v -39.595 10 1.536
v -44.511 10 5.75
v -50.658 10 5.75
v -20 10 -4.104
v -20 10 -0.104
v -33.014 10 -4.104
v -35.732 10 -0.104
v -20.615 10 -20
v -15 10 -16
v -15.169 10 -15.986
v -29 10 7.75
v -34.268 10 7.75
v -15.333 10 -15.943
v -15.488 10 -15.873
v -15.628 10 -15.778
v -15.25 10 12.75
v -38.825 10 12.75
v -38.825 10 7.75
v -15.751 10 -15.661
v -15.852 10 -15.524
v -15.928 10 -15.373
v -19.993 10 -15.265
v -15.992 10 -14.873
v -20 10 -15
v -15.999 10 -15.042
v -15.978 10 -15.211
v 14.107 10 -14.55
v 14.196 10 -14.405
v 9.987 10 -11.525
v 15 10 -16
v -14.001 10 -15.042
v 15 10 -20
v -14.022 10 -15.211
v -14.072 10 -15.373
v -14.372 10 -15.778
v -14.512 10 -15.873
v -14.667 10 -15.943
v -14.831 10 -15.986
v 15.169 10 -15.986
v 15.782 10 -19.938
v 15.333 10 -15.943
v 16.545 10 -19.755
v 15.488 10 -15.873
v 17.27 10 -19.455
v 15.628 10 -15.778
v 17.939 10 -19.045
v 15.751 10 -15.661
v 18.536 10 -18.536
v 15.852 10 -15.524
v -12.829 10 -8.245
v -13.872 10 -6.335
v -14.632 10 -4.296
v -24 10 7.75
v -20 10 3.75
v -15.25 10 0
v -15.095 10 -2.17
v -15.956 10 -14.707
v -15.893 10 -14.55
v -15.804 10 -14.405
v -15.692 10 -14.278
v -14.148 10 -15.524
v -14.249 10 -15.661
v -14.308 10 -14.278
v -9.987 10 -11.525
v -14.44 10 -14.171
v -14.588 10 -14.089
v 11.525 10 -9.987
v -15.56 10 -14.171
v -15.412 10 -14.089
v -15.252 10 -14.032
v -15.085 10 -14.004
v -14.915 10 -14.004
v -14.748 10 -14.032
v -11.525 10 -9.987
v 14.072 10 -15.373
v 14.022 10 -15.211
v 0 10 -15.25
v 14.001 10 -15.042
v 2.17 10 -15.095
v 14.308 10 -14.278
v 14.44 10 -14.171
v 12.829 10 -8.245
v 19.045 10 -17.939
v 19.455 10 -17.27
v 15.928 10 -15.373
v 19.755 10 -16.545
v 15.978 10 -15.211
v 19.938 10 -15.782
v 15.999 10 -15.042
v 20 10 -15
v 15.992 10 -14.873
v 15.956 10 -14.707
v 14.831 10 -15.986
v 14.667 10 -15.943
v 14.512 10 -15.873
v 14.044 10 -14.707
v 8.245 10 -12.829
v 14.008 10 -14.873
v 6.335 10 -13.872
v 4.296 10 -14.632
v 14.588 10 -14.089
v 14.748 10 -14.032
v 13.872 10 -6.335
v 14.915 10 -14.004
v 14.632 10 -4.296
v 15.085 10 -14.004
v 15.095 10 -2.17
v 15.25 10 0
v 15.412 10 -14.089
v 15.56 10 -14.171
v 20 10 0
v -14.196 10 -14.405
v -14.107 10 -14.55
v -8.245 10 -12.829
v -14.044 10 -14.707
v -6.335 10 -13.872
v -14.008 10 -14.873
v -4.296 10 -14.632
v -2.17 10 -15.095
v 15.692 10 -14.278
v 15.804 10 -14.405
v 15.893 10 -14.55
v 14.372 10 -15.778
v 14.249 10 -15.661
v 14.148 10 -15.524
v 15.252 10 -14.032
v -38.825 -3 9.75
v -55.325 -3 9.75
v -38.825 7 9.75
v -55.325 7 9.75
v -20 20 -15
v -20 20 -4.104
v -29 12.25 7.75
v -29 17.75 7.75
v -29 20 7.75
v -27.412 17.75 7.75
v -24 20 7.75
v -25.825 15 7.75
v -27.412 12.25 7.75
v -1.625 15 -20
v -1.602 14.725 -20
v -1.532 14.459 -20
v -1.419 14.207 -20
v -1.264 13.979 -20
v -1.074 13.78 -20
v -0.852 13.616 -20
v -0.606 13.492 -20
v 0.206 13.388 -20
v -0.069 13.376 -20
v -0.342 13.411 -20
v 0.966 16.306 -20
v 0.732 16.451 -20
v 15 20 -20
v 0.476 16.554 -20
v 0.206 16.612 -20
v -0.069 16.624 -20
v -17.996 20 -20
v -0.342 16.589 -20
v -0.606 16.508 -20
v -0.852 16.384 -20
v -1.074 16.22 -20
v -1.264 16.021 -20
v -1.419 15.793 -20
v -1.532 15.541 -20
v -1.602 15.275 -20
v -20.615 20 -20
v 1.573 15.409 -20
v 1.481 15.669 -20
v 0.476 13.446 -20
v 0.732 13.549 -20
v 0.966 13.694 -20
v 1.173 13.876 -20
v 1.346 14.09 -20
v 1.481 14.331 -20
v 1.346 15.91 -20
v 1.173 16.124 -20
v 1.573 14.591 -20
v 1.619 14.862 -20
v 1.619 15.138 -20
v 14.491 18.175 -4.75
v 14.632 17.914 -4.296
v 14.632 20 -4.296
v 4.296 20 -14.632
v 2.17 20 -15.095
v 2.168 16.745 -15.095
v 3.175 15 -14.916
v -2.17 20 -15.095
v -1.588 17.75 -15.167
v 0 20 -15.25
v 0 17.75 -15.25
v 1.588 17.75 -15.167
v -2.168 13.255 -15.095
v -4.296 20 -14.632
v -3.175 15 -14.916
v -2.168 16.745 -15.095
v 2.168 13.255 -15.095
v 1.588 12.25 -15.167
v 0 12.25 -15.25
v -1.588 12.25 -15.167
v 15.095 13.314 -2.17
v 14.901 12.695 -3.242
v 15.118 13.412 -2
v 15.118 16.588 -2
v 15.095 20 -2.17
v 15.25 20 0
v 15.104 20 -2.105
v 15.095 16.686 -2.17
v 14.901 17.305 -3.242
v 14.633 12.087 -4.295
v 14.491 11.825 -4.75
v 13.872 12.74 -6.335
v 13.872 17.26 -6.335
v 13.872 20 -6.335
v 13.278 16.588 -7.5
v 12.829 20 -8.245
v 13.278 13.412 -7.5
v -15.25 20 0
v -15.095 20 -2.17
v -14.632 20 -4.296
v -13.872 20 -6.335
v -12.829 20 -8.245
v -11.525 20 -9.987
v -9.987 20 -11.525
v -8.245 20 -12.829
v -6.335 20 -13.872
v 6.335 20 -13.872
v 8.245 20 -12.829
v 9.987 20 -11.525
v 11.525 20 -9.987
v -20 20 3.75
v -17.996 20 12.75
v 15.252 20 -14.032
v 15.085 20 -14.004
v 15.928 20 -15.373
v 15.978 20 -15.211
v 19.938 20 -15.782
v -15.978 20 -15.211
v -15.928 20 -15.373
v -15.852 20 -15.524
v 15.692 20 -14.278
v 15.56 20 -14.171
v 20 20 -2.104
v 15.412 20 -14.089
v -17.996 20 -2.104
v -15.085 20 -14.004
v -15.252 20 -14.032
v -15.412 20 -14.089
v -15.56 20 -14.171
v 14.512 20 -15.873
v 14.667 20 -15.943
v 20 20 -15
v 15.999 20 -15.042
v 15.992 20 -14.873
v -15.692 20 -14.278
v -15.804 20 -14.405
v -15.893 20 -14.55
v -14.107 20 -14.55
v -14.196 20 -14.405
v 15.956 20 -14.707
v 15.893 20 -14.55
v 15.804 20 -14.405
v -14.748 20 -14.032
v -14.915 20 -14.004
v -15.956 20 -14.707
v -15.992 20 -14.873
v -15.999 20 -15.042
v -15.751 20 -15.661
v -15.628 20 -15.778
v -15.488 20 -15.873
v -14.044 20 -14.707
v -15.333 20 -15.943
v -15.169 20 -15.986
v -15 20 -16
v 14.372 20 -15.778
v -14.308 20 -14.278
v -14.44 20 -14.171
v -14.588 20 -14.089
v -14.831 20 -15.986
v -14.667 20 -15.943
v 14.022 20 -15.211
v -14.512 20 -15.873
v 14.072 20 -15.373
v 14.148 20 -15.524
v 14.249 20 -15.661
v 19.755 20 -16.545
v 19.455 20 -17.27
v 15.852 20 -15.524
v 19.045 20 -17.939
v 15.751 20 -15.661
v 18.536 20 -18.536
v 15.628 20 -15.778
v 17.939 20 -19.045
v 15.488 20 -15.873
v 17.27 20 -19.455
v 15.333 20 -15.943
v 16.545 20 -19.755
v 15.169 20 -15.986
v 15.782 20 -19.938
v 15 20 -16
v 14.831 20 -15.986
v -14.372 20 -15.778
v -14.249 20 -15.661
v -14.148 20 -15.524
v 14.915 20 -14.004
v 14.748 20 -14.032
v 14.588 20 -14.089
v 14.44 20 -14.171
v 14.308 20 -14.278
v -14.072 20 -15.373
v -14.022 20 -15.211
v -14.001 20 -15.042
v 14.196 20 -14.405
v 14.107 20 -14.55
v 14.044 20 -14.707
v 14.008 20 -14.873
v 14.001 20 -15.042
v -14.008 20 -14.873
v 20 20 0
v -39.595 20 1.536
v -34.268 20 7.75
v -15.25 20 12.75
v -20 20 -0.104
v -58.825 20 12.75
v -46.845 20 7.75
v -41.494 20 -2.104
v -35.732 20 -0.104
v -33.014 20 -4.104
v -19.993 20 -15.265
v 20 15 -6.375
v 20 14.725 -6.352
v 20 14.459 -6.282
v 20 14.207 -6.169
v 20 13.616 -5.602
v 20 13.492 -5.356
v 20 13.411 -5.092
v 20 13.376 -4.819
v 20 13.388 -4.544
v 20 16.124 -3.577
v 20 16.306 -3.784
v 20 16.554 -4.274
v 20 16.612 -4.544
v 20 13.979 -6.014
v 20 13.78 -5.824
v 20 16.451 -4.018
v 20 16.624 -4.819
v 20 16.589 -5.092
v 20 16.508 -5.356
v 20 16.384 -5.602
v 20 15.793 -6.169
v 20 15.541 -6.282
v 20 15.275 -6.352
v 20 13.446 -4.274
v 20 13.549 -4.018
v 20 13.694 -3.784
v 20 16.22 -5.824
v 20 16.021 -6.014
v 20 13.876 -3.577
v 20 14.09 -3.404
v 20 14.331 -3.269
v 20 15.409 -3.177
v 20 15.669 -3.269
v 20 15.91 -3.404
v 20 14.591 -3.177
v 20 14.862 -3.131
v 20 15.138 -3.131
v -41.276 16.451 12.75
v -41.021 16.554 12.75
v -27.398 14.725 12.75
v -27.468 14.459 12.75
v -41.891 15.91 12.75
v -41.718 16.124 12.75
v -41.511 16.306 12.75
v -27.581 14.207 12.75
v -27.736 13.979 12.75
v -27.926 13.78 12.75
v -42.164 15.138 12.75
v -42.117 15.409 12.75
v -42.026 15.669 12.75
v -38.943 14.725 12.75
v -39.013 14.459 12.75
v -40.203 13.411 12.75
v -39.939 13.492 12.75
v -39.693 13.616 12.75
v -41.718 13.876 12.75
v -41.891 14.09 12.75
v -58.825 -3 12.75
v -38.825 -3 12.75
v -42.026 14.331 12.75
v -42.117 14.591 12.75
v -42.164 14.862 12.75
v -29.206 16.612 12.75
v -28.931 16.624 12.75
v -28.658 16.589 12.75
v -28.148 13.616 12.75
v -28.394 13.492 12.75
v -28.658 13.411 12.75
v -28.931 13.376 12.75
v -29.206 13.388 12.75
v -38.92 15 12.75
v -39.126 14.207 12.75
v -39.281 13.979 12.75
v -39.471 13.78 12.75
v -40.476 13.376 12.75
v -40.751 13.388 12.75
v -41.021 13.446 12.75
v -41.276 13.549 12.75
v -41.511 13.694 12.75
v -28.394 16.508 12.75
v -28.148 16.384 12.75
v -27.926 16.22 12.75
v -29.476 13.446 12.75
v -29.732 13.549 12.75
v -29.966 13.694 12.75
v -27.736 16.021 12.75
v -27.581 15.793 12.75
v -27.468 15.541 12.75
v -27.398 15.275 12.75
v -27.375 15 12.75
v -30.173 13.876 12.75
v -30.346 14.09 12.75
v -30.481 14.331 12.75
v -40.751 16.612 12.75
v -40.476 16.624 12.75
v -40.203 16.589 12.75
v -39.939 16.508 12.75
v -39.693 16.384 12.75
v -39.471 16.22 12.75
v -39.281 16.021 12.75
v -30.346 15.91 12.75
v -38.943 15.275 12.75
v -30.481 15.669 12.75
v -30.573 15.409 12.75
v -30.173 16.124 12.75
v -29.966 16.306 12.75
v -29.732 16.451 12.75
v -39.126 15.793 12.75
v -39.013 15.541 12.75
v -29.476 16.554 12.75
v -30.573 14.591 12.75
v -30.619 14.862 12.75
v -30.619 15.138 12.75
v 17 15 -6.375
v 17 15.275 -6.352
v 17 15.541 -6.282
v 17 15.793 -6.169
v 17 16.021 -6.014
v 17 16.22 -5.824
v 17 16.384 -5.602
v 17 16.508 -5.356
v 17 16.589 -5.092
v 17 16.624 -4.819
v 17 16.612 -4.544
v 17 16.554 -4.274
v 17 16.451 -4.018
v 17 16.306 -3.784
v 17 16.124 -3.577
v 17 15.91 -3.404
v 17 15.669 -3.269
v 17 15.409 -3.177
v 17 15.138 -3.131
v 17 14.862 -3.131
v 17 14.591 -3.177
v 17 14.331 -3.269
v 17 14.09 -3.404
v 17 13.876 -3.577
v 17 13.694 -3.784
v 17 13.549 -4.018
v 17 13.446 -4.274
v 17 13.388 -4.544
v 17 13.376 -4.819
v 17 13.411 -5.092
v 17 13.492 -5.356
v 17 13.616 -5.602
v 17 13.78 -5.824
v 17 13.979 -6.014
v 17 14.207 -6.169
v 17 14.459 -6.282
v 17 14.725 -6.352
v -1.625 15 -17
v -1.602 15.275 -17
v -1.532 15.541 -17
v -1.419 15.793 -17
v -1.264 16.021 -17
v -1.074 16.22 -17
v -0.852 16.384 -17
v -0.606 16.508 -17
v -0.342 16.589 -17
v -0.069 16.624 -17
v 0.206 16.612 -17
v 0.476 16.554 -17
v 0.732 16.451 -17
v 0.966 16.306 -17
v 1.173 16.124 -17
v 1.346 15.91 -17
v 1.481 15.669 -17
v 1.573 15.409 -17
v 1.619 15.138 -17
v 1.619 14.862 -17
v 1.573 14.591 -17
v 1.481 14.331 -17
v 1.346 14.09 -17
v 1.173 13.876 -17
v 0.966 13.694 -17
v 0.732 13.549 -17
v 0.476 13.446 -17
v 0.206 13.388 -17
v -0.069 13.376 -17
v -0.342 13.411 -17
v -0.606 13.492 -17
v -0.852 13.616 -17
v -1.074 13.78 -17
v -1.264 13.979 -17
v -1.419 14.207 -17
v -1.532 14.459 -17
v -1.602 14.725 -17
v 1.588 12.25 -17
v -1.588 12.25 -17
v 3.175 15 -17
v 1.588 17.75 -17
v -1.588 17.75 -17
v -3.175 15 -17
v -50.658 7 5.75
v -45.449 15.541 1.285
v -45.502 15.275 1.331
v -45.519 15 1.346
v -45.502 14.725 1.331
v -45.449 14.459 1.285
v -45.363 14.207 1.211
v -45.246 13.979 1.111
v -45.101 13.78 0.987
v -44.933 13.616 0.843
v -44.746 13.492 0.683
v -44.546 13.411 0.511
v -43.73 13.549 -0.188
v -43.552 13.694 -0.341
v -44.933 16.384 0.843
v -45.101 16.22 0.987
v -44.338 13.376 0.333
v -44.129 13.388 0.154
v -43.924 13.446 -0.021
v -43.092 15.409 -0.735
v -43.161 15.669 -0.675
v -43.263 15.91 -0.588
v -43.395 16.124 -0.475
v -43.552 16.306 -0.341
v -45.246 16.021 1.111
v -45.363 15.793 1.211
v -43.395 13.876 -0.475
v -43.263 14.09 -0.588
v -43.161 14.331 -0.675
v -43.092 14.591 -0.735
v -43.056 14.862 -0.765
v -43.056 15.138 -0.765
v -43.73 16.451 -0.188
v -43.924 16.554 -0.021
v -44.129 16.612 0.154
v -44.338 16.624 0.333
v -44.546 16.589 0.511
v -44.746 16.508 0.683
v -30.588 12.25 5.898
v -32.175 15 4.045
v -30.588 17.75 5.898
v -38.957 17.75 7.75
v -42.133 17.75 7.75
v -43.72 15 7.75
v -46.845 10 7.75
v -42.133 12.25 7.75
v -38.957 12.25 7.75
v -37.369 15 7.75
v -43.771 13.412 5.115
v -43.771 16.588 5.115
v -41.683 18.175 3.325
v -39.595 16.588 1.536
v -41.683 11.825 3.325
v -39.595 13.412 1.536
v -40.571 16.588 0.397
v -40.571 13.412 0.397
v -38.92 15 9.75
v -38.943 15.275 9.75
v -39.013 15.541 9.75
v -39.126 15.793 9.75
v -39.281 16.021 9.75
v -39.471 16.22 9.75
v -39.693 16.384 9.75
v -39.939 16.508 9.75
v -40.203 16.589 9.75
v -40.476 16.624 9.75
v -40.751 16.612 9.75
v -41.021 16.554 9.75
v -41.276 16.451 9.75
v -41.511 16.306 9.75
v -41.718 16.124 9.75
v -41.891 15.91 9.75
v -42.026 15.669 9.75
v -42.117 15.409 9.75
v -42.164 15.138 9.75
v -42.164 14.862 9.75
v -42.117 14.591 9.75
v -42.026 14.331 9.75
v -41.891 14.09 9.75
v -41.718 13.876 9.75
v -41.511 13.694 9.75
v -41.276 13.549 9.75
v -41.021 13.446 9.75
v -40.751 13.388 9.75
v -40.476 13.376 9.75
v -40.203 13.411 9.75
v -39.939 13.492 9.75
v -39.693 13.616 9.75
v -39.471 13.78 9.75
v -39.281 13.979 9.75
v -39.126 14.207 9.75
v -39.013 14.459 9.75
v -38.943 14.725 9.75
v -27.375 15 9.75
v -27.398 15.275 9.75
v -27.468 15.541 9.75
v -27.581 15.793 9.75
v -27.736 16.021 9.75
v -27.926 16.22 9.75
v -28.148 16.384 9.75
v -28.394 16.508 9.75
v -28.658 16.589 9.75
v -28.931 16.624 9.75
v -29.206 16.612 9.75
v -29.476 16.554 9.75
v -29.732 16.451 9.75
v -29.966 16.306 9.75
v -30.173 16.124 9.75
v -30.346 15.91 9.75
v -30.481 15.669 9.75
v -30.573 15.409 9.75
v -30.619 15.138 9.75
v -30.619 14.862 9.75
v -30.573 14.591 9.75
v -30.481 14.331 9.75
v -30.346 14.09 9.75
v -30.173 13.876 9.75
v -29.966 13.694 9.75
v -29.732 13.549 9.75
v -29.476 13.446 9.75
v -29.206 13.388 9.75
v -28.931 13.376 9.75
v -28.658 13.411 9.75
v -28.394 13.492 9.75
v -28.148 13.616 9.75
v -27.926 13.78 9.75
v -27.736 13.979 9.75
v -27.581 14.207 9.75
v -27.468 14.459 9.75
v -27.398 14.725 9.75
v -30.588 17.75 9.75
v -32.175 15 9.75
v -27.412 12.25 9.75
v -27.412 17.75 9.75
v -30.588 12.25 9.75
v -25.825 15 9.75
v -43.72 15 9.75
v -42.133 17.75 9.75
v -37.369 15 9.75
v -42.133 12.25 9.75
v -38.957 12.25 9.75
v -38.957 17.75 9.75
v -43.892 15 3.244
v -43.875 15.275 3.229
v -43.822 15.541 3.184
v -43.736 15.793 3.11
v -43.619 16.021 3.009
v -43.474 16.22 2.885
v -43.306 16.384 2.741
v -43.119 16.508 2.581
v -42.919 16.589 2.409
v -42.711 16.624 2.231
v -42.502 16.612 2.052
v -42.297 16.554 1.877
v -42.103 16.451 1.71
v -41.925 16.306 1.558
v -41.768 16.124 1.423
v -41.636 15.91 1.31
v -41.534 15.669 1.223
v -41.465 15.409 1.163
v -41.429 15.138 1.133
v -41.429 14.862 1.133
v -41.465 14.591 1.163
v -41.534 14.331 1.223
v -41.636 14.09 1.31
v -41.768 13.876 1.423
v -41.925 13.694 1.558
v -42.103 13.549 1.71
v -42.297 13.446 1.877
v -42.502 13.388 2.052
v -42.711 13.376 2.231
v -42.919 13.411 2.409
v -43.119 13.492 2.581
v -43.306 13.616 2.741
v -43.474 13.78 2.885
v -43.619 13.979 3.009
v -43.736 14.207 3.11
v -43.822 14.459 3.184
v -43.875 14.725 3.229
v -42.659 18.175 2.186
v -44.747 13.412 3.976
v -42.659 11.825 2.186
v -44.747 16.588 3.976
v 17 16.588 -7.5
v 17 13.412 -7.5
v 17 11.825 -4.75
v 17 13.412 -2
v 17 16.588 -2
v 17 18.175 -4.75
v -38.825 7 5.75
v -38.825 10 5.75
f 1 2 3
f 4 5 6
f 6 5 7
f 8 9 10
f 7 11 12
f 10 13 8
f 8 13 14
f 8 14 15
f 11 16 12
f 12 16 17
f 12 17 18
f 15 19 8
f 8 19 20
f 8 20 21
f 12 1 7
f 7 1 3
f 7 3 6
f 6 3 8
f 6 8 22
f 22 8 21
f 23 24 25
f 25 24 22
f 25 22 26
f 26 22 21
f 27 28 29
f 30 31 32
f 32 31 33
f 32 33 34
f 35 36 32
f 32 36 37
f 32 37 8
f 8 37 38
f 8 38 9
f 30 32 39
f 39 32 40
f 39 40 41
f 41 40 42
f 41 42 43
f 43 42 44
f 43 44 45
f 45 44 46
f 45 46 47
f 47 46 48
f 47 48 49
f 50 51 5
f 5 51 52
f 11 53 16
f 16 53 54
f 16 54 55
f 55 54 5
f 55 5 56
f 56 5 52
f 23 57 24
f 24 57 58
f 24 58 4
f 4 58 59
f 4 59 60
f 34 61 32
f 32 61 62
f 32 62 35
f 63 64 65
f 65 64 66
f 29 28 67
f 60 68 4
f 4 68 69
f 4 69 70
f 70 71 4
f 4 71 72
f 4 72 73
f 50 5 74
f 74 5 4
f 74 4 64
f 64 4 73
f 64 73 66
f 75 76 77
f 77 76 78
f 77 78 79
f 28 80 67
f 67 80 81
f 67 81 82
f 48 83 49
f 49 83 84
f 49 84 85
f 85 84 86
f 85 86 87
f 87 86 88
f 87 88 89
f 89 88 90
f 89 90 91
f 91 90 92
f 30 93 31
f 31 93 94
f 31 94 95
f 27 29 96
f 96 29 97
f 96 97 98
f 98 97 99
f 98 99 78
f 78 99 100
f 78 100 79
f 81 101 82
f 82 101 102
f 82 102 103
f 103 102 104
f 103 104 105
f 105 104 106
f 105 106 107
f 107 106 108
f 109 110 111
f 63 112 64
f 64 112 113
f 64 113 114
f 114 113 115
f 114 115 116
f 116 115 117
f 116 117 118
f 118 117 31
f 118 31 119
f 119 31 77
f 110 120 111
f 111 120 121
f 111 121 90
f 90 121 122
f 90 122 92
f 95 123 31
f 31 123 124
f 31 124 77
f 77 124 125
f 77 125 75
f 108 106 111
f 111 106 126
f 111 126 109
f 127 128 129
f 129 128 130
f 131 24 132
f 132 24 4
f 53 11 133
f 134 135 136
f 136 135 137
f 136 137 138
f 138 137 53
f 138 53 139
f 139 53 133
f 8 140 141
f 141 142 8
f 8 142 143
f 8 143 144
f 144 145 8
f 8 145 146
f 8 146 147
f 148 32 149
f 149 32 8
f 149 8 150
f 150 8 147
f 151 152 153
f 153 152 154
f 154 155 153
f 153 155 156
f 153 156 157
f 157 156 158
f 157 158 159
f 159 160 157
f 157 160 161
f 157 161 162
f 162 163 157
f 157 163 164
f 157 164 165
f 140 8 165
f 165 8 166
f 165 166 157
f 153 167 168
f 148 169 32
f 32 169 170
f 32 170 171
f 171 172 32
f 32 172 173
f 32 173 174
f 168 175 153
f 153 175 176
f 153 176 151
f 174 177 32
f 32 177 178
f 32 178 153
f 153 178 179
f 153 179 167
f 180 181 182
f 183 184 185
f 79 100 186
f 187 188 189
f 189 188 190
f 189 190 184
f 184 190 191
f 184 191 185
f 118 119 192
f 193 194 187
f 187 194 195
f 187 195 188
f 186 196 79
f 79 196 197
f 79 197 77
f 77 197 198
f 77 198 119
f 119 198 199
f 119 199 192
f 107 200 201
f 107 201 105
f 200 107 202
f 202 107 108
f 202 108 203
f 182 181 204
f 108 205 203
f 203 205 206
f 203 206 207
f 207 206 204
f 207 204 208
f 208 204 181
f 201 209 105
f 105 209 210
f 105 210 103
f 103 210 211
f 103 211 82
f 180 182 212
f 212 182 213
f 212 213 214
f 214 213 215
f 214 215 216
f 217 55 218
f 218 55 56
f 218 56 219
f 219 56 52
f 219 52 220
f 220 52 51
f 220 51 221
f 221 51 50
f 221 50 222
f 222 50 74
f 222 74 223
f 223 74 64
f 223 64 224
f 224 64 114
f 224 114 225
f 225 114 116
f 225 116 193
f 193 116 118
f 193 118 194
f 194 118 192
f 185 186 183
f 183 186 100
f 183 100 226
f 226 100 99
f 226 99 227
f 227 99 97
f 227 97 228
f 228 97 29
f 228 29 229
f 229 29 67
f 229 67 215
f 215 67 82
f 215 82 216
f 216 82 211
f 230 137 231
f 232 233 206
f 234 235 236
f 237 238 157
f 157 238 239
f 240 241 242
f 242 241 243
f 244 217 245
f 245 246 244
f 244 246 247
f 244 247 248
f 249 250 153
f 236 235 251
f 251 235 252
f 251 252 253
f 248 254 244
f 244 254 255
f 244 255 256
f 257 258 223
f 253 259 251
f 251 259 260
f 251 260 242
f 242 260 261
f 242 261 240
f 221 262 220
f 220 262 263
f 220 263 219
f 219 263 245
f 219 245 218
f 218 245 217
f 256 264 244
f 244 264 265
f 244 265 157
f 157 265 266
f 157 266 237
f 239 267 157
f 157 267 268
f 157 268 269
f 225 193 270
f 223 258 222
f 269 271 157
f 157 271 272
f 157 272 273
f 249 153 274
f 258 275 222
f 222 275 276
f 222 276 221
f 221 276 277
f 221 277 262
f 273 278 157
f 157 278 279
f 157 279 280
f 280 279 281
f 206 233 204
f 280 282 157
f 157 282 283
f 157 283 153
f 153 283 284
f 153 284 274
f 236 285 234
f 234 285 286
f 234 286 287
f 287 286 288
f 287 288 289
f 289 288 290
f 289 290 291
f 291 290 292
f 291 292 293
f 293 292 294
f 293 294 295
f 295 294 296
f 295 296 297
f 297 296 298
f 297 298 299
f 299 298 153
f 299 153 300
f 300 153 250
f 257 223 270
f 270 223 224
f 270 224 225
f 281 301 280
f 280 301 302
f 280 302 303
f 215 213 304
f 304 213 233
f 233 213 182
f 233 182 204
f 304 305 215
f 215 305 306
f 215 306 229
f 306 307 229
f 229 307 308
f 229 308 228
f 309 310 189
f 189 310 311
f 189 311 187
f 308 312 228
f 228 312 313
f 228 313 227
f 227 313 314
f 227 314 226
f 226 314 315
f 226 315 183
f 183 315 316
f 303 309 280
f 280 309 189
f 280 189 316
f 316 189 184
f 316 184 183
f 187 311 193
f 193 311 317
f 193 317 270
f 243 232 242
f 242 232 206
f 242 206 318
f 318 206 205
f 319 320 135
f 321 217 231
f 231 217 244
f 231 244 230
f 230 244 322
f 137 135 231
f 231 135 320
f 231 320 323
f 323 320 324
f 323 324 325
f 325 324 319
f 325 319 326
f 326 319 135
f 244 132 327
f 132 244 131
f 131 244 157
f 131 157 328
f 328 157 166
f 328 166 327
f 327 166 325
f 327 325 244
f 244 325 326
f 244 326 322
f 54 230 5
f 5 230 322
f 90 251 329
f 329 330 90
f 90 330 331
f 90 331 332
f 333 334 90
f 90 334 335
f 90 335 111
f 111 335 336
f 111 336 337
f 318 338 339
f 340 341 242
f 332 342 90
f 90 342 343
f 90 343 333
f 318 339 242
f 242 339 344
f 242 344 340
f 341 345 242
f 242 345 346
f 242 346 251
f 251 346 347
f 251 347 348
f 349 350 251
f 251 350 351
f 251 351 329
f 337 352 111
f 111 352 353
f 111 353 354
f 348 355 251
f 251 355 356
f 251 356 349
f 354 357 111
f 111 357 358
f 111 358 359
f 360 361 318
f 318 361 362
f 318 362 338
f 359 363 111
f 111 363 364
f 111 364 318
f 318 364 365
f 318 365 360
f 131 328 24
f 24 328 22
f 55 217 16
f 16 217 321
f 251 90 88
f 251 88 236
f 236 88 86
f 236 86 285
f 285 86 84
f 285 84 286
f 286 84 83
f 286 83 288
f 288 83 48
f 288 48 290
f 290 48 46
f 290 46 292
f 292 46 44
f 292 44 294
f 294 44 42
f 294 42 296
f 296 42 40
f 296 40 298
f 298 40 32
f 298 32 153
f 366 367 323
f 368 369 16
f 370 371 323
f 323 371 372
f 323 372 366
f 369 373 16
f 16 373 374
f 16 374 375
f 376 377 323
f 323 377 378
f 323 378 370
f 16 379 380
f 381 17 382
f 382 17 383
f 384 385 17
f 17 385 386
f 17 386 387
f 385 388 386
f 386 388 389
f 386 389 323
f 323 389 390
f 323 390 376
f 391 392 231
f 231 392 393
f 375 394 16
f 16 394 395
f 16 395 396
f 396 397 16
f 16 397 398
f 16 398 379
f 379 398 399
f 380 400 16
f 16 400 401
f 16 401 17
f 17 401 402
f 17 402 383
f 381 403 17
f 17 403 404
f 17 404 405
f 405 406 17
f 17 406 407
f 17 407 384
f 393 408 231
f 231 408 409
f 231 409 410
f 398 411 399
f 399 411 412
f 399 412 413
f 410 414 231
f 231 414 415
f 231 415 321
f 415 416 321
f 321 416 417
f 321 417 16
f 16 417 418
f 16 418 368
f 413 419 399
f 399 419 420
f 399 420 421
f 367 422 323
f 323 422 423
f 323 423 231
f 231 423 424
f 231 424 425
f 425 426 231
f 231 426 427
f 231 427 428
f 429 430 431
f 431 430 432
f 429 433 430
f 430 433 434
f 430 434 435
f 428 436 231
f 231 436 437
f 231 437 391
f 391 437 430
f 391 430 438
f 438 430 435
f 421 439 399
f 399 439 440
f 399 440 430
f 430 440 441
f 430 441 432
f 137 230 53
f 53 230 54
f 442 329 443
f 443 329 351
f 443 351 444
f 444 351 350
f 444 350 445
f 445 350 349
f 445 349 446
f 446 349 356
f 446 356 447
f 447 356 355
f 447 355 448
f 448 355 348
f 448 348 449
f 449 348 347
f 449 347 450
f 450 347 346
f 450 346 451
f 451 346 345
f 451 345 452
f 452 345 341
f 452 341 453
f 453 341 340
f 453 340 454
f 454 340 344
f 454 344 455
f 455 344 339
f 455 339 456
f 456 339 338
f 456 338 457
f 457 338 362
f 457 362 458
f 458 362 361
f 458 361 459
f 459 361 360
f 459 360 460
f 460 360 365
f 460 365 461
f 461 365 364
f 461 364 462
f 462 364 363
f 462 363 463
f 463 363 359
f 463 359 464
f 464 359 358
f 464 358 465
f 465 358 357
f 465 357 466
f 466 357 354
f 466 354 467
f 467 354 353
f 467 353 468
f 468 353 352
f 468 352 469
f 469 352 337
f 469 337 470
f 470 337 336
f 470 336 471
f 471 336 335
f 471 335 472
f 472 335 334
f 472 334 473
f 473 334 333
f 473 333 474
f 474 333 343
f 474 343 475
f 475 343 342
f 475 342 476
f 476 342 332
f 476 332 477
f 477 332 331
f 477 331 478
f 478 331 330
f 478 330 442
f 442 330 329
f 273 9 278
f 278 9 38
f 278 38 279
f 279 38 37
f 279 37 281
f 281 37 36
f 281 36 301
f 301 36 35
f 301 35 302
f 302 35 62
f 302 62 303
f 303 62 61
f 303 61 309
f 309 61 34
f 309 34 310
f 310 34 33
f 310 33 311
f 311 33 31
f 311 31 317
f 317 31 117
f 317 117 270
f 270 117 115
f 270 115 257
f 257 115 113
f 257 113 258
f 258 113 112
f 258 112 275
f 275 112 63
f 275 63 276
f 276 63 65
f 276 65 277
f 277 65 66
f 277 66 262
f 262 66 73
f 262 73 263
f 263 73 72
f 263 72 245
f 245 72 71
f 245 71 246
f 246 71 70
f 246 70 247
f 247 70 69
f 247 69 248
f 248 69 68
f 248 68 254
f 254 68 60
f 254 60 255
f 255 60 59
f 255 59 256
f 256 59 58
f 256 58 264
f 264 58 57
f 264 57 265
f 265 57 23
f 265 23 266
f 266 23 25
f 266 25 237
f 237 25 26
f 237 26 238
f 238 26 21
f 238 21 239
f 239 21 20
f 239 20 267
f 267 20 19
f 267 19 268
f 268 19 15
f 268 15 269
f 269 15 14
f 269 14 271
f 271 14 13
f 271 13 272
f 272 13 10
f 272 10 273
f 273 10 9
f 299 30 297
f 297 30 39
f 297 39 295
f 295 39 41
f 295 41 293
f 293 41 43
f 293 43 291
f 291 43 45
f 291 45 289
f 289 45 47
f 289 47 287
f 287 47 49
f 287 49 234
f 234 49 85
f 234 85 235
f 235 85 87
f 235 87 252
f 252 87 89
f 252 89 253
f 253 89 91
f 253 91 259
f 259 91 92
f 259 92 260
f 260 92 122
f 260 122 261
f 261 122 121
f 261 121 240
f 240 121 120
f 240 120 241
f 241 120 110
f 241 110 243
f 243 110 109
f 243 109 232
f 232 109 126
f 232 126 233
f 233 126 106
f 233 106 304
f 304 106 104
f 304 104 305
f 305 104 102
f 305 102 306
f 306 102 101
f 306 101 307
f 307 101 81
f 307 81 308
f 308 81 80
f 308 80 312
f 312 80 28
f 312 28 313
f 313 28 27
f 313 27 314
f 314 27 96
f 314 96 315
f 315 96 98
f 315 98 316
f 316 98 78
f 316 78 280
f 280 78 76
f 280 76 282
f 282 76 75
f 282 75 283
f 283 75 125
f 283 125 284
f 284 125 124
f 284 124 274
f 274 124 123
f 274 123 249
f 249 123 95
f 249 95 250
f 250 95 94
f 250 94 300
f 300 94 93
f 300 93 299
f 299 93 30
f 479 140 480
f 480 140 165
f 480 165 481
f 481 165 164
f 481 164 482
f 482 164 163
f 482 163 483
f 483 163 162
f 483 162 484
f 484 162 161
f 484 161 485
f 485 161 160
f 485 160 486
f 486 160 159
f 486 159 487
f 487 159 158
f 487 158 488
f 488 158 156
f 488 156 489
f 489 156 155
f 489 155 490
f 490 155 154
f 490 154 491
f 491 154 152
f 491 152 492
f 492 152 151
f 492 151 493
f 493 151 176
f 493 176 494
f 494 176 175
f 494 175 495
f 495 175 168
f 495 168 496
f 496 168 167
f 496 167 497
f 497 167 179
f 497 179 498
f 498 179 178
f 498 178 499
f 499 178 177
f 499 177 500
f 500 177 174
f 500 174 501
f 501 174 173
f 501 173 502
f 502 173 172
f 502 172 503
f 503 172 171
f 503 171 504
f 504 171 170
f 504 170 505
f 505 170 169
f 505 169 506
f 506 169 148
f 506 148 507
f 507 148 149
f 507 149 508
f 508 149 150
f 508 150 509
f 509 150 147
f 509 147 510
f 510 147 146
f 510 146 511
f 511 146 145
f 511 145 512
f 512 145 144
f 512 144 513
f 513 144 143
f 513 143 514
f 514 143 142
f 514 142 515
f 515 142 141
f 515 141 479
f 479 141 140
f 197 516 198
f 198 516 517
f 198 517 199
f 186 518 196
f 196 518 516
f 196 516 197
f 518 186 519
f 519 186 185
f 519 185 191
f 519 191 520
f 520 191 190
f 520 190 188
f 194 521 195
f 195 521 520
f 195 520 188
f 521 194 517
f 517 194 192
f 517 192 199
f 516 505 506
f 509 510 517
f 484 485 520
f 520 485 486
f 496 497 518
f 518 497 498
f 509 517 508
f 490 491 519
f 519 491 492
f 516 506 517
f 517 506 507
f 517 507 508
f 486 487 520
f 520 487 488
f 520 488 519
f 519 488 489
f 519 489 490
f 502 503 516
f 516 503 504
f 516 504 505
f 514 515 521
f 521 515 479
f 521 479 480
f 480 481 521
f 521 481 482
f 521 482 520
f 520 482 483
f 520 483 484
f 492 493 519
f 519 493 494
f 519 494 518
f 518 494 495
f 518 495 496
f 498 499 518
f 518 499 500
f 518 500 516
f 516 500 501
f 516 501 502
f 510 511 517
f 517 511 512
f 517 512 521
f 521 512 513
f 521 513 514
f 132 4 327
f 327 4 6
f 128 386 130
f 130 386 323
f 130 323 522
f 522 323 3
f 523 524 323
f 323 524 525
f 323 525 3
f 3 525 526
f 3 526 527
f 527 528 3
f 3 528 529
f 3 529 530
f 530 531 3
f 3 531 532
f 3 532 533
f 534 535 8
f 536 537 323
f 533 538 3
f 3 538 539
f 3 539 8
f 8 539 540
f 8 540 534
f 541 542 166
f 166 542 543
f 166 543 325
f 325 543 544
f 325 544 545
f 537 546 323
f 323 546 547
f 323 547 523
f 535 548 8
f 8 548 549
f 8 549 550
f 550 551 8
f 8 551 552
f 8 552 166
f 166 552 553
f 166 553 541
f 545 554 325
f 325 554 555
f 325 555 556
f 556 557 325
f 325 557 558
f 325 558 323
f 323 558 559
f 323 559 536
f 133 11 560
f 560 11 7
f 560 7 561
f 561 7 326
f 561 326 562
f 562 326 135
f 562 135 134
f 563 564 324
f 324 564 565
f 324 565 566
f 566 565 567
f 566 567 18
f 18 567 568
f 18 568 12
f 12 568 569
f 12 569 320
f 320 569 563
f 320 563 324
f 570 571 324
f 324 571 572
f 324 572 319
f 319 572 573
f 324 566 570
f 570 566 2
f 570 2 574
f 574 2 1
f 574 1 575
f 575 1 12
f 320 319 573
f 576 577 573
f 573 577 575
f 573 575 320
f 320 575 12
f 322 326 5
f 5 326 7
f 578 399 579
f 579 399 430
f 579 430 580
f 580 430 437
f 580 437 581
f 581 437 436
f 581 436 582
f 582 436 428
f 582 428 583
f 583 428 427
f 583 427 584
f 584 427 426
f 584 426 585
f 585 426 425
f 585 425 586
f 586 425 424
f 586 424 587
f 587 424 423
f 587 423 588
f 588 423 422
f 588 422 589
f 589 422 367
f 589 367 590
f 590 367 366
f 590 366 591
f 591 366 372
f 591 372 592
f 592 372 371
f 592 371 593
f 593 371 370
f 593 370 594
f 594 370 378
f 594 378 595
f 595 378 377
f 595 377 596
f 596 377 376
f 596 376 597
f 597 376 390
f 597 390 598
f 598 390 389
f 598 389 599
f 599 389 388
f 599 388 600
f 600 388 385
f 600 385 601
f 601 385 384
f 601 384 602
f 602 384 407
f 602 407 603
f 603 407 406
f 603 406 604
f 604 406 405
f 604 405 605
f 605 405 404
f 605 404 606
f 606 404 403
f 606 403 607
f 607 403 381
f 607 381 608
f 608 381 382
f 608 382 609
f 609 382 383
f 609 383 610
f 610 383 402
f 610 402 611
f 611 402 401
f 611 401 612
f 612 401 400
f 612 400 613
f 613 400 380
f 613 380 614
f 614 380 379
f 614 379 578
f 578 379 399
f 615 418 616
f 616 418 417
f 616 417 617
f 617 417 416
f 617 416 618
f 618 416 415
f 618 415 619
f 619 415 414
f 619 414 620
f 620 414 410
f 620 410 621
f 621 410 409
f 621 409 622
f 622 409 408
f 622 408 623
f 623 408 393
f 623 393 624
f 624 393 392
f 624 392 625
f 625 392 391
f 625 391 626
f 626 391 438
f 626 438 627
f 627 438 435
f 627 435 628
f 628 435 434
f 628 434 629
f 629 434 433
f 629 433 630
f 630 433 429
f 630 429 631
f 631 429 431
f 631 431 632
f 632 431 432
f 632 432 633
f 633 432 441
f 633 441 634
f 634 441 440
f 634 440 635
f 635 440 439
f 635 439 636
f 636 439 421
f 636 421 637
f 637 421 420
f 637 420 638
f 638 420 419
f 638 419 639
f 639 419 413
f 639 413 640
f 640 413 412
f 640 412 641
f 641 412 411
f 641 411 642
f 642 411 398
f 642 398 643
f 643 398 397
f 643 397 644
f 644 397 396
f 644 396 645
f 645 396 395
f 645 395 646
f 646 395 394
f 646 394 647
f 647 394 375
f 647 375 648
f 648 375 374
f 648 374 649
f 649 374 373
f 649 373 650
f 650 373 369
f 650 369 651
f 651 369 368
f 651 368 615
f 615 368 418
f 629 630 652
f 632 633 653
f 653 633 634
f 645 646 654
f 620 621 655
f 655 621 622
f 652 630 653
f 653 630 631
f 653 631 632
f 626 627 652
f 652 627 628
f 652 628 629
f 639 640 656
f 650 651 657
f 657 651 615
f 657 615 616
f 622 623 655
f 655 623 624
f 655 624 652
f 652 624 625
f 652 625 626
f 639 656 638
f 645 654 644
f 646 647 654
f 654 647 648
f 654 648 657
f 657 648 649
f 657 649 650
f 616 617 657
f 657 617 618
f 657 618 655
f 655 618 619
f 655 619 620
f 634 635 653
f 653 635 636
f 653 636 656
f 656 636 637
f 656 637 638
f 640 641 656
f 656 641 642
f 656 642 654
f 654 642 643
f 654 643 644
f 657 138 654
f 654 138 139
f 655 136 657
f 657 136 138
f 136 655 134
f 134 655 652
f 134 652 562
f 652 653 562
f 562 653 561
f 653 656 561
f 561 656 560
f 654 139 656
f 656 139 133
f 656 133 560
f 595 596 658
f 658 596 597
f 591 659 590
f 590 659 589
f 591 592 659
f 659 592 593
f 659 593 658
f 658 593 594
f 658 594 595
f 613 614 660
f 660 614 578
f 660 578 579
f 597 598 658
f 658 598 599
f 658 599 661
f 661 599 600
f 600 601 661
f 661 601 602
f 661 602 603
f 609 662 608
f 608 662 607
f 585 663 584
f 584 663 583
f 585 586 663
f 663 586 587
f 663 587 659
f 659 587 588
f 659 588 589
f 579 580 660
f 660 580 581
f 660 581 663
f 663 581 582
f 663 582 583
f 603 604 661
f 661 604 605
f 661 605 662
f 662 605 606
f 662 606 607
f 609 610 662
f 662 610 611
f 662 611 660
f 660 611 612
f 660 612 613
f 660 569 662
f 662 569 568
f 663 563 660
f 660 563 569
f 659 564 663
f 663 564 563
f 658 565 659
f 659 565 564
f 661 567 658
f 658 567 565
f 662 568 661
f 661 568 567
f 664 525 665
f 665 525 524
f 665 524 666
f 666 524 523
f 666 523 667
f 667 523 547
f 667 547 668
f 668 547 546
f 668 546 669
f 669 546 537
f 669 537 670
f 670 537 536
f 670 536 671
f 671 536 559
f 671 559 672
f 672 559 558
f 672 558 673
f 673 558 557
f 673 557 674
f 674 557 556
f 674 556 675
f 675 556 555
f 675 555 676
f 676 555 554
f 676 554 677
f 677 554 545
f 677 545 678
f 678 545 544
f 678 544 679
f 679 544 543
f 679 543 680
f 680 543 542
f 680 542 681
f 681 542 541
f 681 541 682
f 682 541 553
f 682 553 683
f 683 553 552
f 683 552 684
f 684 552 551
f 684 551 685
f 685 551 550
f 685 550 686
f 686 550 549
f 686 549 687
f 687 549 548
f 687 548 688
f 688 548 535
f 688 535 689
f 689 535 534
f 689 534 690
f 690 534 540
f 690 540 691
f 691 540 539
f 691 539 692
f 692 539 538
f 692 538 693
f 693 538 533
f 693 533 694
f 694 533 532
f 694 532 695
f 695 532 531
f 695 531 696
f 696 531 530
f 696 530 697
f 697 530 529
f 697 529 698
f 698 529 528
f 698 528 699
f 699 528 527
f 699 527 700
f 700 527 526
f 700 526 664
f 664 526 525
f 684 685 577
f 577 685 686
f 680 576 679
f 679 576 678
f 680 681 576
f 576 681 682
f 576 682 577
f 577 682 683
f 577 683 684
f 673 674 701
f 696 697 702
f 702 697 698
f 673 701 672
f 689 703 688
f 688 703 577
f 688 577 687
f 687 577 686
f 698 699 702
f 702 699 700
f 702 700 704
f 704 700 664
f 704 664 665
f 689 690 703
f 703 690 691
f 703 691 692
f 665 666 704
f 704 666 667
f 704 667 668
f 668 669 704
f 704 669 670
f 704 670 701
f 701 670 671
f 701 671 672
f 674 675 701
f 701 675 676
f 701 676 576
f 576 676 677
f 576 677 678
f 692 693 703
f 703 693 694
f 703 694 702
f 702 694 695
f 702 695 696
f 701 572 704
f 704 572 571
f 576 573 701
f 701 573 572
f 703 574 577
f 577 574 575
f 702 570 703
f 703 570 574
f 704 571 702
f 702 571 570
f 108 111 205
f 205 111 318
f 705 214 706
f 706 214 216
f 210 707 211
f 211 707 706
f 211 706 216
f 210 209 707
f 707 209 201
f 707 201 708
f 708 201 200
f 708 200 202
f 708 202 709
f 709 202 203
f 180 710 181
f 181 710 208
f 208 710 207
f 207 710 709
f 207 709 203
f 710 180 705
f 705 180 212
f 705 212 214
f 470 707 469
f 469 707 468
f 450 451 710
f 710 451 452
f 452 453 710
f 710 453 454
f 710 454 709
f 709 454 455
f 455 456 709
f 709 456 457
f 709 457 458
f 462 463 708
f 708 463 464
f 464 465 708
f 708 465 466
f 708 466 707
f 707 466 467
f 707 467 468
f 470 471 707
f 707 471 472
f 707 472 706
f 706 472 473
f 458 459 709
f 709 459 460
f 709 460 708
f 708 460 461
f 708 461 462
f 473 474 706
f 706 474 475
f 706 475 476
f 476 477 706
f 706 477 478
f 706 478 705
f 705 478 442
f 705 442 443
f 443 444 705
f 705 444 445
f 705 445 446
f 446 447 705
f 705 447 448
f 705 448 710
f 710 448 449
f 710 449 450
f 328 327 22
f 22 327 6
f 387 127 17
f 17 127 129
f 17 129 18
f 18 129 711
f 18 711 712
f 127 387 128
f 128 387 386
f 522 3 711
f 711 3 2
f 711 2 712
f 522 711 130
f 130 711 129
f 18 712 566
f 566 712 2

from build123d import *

# Parameters (mm, degrees)
CROQUIS1_R                              = 15.25
CROQUIS1_R_2                            = 2.125
SOPORTE_CAJA_REDUCTORA_DEPTH            = 20
CROQUIS3_R                              = 2.125
CORTAR_EXTRUIR1_DEPTH                   = 51.423828692
REDONDEO1_R                             = 5
BOSS_EXTRUDE1_DEPTH                     = 20
CUT_EXTRUDE1_REACH                      = 55.852
SKETCH2_R                               = 1.625
CUT_EXTRUDE2_DEPTH                      = 2
SKETCH4_R                               = 1.625
CUT_EXTRUDE3_DEPTH                      = 63.291652731
CUT_EXTRUDE4_START                      = -4.5
CUT_EXTRUDE4_DEPTH                      = 2
CROQUIS6_W                              = 4.75
CROQUIS6_H                              = 4.75
CORTAR_EXTRUIR17_DEPTH                  = 42.231056256
CROQUIS7_W                              = 60
CROQUIS7_H                              = 20
CORTAR_EXTRUIR18_DEPTH                  = 51.423828692
SALIENTE_EXTRUIR2_DEPTH                 = 49
SOPORTE_START                           = -15
SOPORTE_MOTOR_DEPTH                     = 15
CROQUIS12_R                             = 2.125
AGUJEROS_DE_SUJECION_A_BASE_DEPTH       = 84.087679592
TUERCA_START                            = -4
TUERCA_AGUJERO_DE_SUJECION_A_BASE_DEPTH = 10
SALIENTE_EXTRUIR4_DEPTH                 = 15
CORTAR_EXTRUIR19_DEPTH                  = 25
CROQUIS14_W                             = 50
CROQUIS14_H                             = 118
CORTAR_EXTRUIR22_DEPTH                  = 146.556045907
CROQUIS15_W                             = 10
CROQUIS15_H                             = 7
CORTAR_EXTRUIR23_DEPTH                  = 42.231056256
CORTAR_EXTRUIR24_DEPTH                  = 42.231056256
CROQUIS18_W                             = 40
CROQUIS18_H                             = 10
CORTAR_EXTRUIR25_DEPTH                  = 44.27311521
SALIENTE_EXTRUIR5_DEPTH                 = 10
CROQUIS20_R                             = 1
CORTAR_EXTRUIR26_DEPTH                  = 49.229270158
CORTAR_EXTRUIR27_REACH                  = 62.959
CORTAR_EXTRUIR27_END_RADIUS             = 15.25
CROQUIS21_R                             = 1.625
CROQUIS22_R                             = 2.125
CROQUIS22_R_2                           = 1
SALIENTE_EXTRUIR6_DEPTH                 = 10
CROQUIS23_R                             = 1.625
CORTAR_EXTRUIR28_DEPTH                  = 52.269508521
CORTAR_EXTRUIR29_START                  = -3
CORTAR_EXTRUIR29_DEPTH                  = 10
SALIENTE_EXTRUIR7_DEPTH                 = 10
CORTAR_EXTRUIR30_REACH                  = 72.235
CROQUIS27_R                             = 1.625
CORTAR_EXTRUIR31_REACH                  = 75.235
CORTAR_EXTRUIR31_START                  = -3
CORTAR_EXTRUIR32_REACH                  = 58.612
CROQUIS29_R                             = 1.625
CORTAR_EXTRUIR33_REACH                  = 61.112
CORTAR_EXTRUIR33_START                  = -2.5
CROQUIS35_W                             = 13.305418987
CROQUIS35_H                             = 6.826864192
CORTAR_EXTRUIR34_DEPTH                  = 63.931555098
CORTAR_EXTRUIR34_DEPTH_BACK             = 63.931555098
CORTAR_EXTRUIR35_START                  = -3
CORTAR_EXTRUIR35_DEPTH                  = 10
SALIENTE_EXTRUIR8_DEPTH                 = 10
SALIENTE_EXTRUIR9_DEPTH                 = 13
SALIENTE_EXTRUIR10_DEPTH                = 3


with BuildPart() as part:
    # Croquis1 → Soporte caja reductora (new body)
    with BuildSketch(Plane(origin=(0, 0, 0), x_dir=(1, 0, 0), z_dir=(0, 1, 0))):
        Polygon((-30, -15.25), (-20, -15.25), (-20, -20), (20, -20), (20, -15.25), (30, -15.25), (30, -7.25), (20, -4.25), (20, 20), (-20, 20), (-20, -4.25), (-30, -7.25), align=None)
        with Locations(Location((0, 0, 0), (0, 0, 270))):
            Circle(CROQUIS1_R, mode=Mode.SUBTRACT)
        with Locations(Location((-15, 15, 0), (0, 0, 270))):
            Circle(CROQUIS1_R_2, mode=Mode.SUBTRACT)
        with Locations(Location((15, 15, 0), (0, 0, 270))):
            Circle(CROQUIS1_R_2, mode=Mode.SUBTRACT)
    extrude(amount=-SOPORTE_CAJA_REDUCTORA_DEPTH)

    # Croquis3 → Cortar-Extruir1 (cut, through all)
    with BuildSketch(Plane.XY.offset(15.25)):
        with Locations((-23.5, -10)):
            Circle(CROQUIS3_R)
        with Locations((23.5, -10)):
            Circle(CROQUIS3_R)
    extrude(amount=-CORTAR_EXTRUIR1_DEPTH, mode=Mode.SUBTRACT)

    # Redondeo1
    redondeo1_edges = [part.edges().sort_by_distance(p)[0] for p in [
        (-20, -10, -20),
        (20, -10, -20),
    ]]
    fillet(redondeo1_edges, radius=REDONDEO1_R)

    # Sketch1 → Boss-Extrude1 (add)
    with BuildSketch(Plane(origin=(0, 0, 0), x_dir=(1, 0, 0), z_dir=(0, 1, 0))):
        with BuildLine():
            Line((25.5, 15), (20, 15))
            ThreePointArc((20, 15), (18.535533906, 18.535533906), (15, 20))
            Line((15, 20), (30, 20))
            Line((30, 20), (30, 8))
            Line((30, 8), (25.5, 8))
            Line((25.5, 8), (25.5, 15))
        make_face()
    extrude(amount=-BOSS_EXTRUDE1_DEPTH)

    # Sketch2 → Cut-Extrude1 (cut, up to next)
    with BuildSketch(Plane(origin=(0, 0, -20), x_dir=(-1, 0, 0), z_dir=(0, 0, -1)), mode=Mode.PRIVATE) as cut_extrude1_sk1:
        with Locations((-22.75, -10)):
            Circle(SKETCH2_R)
    cut_extrude1_tool1 = extrude(cut_extrude1_sk1.sketch, amount=-CUT_EXTRUDE1_REACH, mode=Mode.PRIVATE) & part.part
    add(cut_extrude1_tool1.solids().sort_by_distance((22.75, -10, -20))[0], mode=Mode.SUBTRACT)

    # Sketch3 → Cut-Extrude2 (cut)
    with BuildSketch(Plane.XY.offset(-15)):
        Polygon((20, -11.58771324), (22.75, -13.175426481), (25.5, -11.58771324), (25.5, -8.41228676), (22.75, -6.824573519), (20, -8.41228676), align=None)
    extrude(amount=-CUT_EXTRUDE2_DEPTH, mode=Mode.SUBTRACT)

    # Sketch4 → Cut-Extrude3 (cut, through all)
    with BuildSketch(Plane.ZY.offset(-25.5)):
        with Locations((-12.25, -10)):
            Circle(SKETCH4_R)
    extrude(amount=-CUT_EXTRUDE3_DEPTH, mode=Mode.SUBTRACT)

    # Sketch5 → Cut-Extrude4 (cut)
    with BuildSketch(Plane(origin=(30, 0, 0), x_dir=(0, 0, -1), z_dir=(1, 0, 0)).offset(CUT_EXTRUDE4_START)):
        Polygon((15, -11.58771324), (15, -8.41228676), (12.25, -6.824573519), (9.5, -8.41228676), (9.5, -11.58771324), (12.25, -13.175426481), align=None)
    extrude(amount=CUT_EXTRUDE4_DEPTH, mode=Mode.SUBTRACT)

    # Croquis6 → Cortar-Extruir17 (cut, through all)
    with BuildSketch(Plane(origin=(0, 0, 0), x_dir=(1, 0, 0), z_dir=(0, 1, 0))):
        Polygon((0, -15.25), (-15.25, -15.25), (-15.25, -20), (15.25, -20), (15.25, -15.25), align=None)
        with Locations((-17.625, -17.625)):
            Rectangle(CROQUIS6_W, CROQUIS6_H)
        with BuildLine():
            ThreePointArc((0, -15.25), (-10.783378413, -10.783378413), (-15.25, 0))
            Line((-15.25, 0), (-15.25, -15.25))
            Line((-15.25, -15.25), (0, -15.25))
        make_face()
        with BuildLine():
            Line((15.25, -15.25), (15.25, 0))
            ThreePointArc((15.25, 0), (10.783378413, -10.783378413), (0, -15.25))
            Line((0, -15.25), (15.25, -15.25))
        make_face()
        with Locations((17.625, -17.625)):
            Rectangle(CROQUIS6_W, CROQUIS6_H)
    extrude(amount=-CORTAR_EXTRUIR17_DEPTH, mode=Mode.SUBTRACT)


with BuildPart() as body_2:
    # Simetría1: mirrored copy
    add(part.part.mirror(Plane.ZX))

    # Croquis8 → Saliente-Extruir2 (add)
    with BuildSketch(Plane(origin=(0, 20, 0), x_dir=(1, 0, 0), z_dir=(0, 1, 0))):
        with BuildLine():
            Line((-12.664515522, 20), (-11.040489496, 13.939052358))
            Line((-11.040489496, 13.939052358), (-10.315162126, 11.232093763))
            ThreePointArc((-10.315162126, 11.232093763), (0, 15.25), (10.315162126, 11.232093763))
            Line((10.315162126, 11.232093763), (10.817418481, 13.87928066))
            Line((10.817418481, 13.87928066), (11.978715476, 20))
            Line((11.978715476, 20), (-12.664515522, 20))
        make_face()
    extrude(amount=SALIENTE_EXTRUIR2_DEPTH)

    # Croquis9 → Soporte motor (add)
    with BuildSketch(Plane(origin=(0, 69, 0), x_dir=(1, 0, 0), z_dir=(0, 1, 0)).offset(SOPORTE_START)):
        with BuildLine():
            Line((-20, 15), (-20, -4.25))
            Line((-20, -4.25), (-30, -7.25))
            Line((-30, -7.25), (-30, -15.25))
            Line((-30, -15.25), (0, -15.25))
            Line((0, -15.25), (0, -14.75))
            ThreePointArc((0, -14.75), (-10.429825023, 10.429825023), (14.75, 0))
            Line((14.75, 0), (20, 0))
            Line((20, 0), (20, 13.936837101))
            Line((20, 13.936837101), (12.664515522, 20))
            Line((12.664515522, 20), (-15, 20))
            ThreePointArc((-15, 20), (-18.535533906, 18.535533906), (-20, 15))
        make_face()
    extrude(amount=-SOPORTE_MOTOR_DEPTH)

    # Croquis12 → Agujeros de sujecion a base (cut, through all)
    with BuildSketch(Plane.XY.offset(15.25)):
        with Locations((-23.5, 46.5)):
            Circle(CROQUIS12_R)
    extrude(amount=-AGUJEROS_DE_SUJECION_A_BASE_DEPTH, mode=Mode.SUBTRACT)

    # Croquis13 → Tuerca Agujero de sujecion a base (cut)
    with BuildSketch(Plane.XY.offset(15.25).offset(TUERCA_START)):
        Polygon((-20, 44.479274058), (-20, 48.520725942), (-23.5, 50.541451884), (-27, 48.520725942), (-27, 44.479274058), (-23.5, 42.458548116), align=None)
    extrude(amount=-TUERCA_AGUJERO_DE_SUJECION_A_BASE_DEPTH, mode=Mode.SUBTRACT)

    # Croquis10 → Saliente-Extruir4 (add)
    with BuildSketch(Plane(origin=(0, 69, 0), x_dir=(1, 0, 0), z_dir=(0, 1, 0))):
        with BuildLine():
            ThreePointArc((10.315162126, 11.232093763), (0, 15.25), (-10.315162126, 11.232093763))
            Line((-10.315162126, 11.232093763), (-10.16850369, 10.684757026))
            ThreePointArc((-10.16850369, 10.684757026), (0, 14.75), (10.16850369, 10.684757026))
            Line((10.16850369, 10.684757026), (10.315162126, 11.232093763))
        make_face()
    extrude(amount=-SALIENTE_EXTRUIR4_DEPTH)

    # Croquis11 → Cortar-Extruir19 (cut)
    with BuildSketch(Plane.XZ):
        with BuildLine():
            Line((15.25, 4.25), (20, 4.25))
            Line((20, 4.25), (21.972856468, 4.84185694))
            ThreePointArc((21.972856468, 4.84185694), (19.948931102, 10.40625523), (16.543503257, 15.25))
            Line((16.543503257, 15.25), (15.25, 15.25))
            Line((15.25, 15.25), (15.25, 4.25))
        make_face()
        with BuildLine():
            Line((21.972856468, 4.84185694), (30, 7.25))
            Line((30, 7.25), (30, 15.25))
            Line((30, 15.25), (16.543503257, 15.25))
            ThreePointArc((16.543503257, 15.25), (19.948931102, 10.40625523), (21.972856468, 4.84185694))
        make_face()
        with BuildLine():
            ThreePointArc((20, -15), (18.535533906, -18.535533906), (15, -20))
            Line((15, -20), (30, -20))
            Line((30, -20), (30, -8))
            Line((30, -8), (25.5, -8))
            Line((25.5, -8), (25.5, -15))
            Line((25.5, -15), (20, -15))
        make_face()
    extrude(amount=-CORTAR_EXTRUIR19_DEPTH, mode=Mode.SUBTRACT)

    # Simetría2: body 2 across face


with BuildPart() as part_1:
    add(part.part)

    # Croquis7 → Cortar-Extruir18 (cut, through all)
    with BuildSketch(Plane(origin=(0, 0, -20), x_dir=(-1, 0, 0), z_dir=(0, 0, -1))):
        with Locations((0, -10)):
            Rectangle(CROQUIS7_W, CROQUIS7_H)
    extrude(amount=-CORTAR_EXTRUIR18_DEPTH, mode=Mode.SUBTRACT)


with BuildPart() as body_2_1:
    add(body_2.part)
    add(body_2.part.mirror(Plane(origin=(-0.229209569, 69, -16.663998028), x_dir=(0, 0, 1), z_dir=(0, 1, 0))))

    # Croquis14 → Cortar-Extruir22 (cut, through all)
    with BuildSketch(Plane.XY.offset(15.25)):
        with Locations((-5, 79)):
            Rectangle(CROQUIS14_W, CROQUIS14_H)
    extrude(amount=-CORTAR_EXTRUIR22_DEPTH, mode=Mode.SUBTRACT)

    # Croquis15 → Cortar-Extruir23 (cut, through all)
    with BuildSketch(Plane.XZ):
        with Locations((-25, 7.75)):
            Rectangle(CROQUIS15_W, CROQUIS15_H)
    extrude(amount=-CORTAR_EXTRUIR23_DEPTH, mode=Mode.SUBTRACT)

    # Croquis16 → Cortar-Extruir24 (cut, through all)
    with BuildSketch(Plane.XZ):
        Polygon((-30, 15.25), (-15.25, 15.25), (-15.25, 12.75), (-20, 12.75), (-20, 11.25), (-30, 11.25), (-30, 12.75), align=None)
    extrude(amount=-CORTAR_EXTRUIR24_DEPTH, mode=Mode.SUBTRACT)

    # Croquis18 → Cortar-Extruir25 (cut, through all)
    with BuildSketch(Plane(origin=(0, 0, -20), x_dir=(-1, 0, 0), z_dir=(0, 0, -1))):
        with Locations((0, 5)):
            Rectangle(CROQUIS18_W, CROQUIS18_H)
    extrude(amount=-CORTAR_EXTRUIR25_DEPTH, mode=Mode.SUBTRACT)

    # Croquis19 → Saliente-Extruir5 (add)
    with BuildSketch(Plane(origin=(0, 20, 0), x_dir=(1, 0, 0), z_dir=(0, 1, 0))):
        Polygon((-20, -12.75), (-34, -12.75), (-34, -7.75), (-24, -7.75), (-20, -3.75), align=None)
    extrude(amount=-SALIENTE_EXTRUIR5_DEPTH)

    # Croquis20 → Cortar-Extruir26 (cut, through all)
    with BuildSketch(Plane(origin=(0, 0, 7.75), x_dir=(-1, 0, 0), z_dir=(0, 0, -1))):
        with Locations((29, 15)):
            Circle(CROQUIS20_R)
    extrude(amount=-CORTAR_EXTRUIR26_DEPTH, mode=Mode.SUBTRACT)

    # Cortar-Extruir27: up to this cylinder (the profile starts outside it)
    cortar_extruir27_end = Plane(origin=(0, 15, 0), z_dir=(0, -1, 0)) * Cylinder(CORTAR_EXTRUIR27_END_RADIUS, 157.418, mode=Mode.PRIVATE)
    # Croquis21 → Cortar-Extruir27 (cut, up to the surface)
    with BuildSketch(Plane(origin=(20, 0, 0), x_dir=(0, 0, -1), z_dir=(1, 0, 0)), mode=Mode.PRIVATE) as cortar_extruir27_sk1:
        with Locations((4.75, 15)):
            Circle(CROQUIS21_R)
    cortar_extruir27_tool1 = extrude(cortar_extruir27_sk1.sketch, amount=-CORTAR_EXTRUIR27_REACH, mode=Mode.PRIVATE) - cortar_extruir27_end
    add(cortar_extruir27_tool1.solids().sort_by_distance((20, 15, -4.75))[0], mode=Mode.SUBTRACT)

    # Croquis22 → Saliente-Extruir6 (add)
    with BuildSketch(Plane.XZ.offset(-10)):
        with Locations((-15, -15)):
            Circle(CROQUIS22_R)
        with Locations(Location((-15, -15, 0), (0, 0, 270))):
            Circle(CROQUIS22_R_2, mode=Mode.SUBTRACT)
        with Locations((15, -15)):
            Circle(CROQUIS22_R)
        with Locations(Location((15, -15, 0), (0, 0, 270))):
            Circle(CROQUIS22_R_2, mode=Mode.SUBTRACT)
    extrude(amount=-SALIENTE_EXTRUIR6_DEPTH)

    # Croquis23 → Cortar-Extruir28 (cut, through all)
    with BuildSketch(Plane(origin=(0, 0, -20), x_dir=(-1, 0, 0), z_dir=(0, 0, -1))):
        with Locations((0, 15)):
            Circle(CROQUIS23_R)
    extrude(amount=-CORTAR_EXTRUIR28_DEPTH, mode=Mode.SUBTRACT)

    # Croquis24 → Cortar-Extruir29 (cut)
    with BuildSketch(Plane(origin=(0, 0, -20), x_dir=(-1, 0, 0), z_dir=(0, 0, -1)).offset(CORTAR_EXTRUIR29_START)):
        Polygon((1.58771324, 12.25), (3.175426481, 15), (1.58771324, 17.75), (-1.58771324, 17.75), (-3.175426481, 15), (-1.58771324, 12.25), align=None)
    extrude(amount=-CORTAR_EXTRUIR29_DEPTH, mode=Mode.SUBTRACT)

    # Croquis26 → Saliente-Extruir7 (add)
    with BuildSketch(Plane.XZ.offset(-10)):
        Polygon((-34, 7.75), (-34, 12.75), (-58.825, 12.75), (-39.160527763, -4.104491148), (-20, -4.104491148), (-20, -0.104491148), (-35.732113118, -0.104491148), (-29, 7.75), align=None)
        Polygon((-34.268209086, 7.75), (-39.594516123, 1.535690951), (-46.844874897, 7.75), align=None, mode=Mode.SUBTRACT)
    extrude(amount=-SALIENTE_EXTRUIR7_DEPTH)

    # Croquis27 → Cortar-Extruir30 (cut, up to next)
    with BuildSketch(Plane.XY.offset(12.75), mode=Mode.PRIVATE) as cortar_extruir30_sk1:
        with Locations((-40.544874897, 15)):
            Circle(CROQUIS27_R)
    cortar_extruir30_tool1 = extrude(cortar_extruir30_sk1.sketch, amount=-CORTAR_EXTRUIR30_REACH, mode=Mode.PRIVATE) & body_2_1.part
    # Croquis27 → Cortar-Extruir30 (cut, up to next)
    with BuildSketch(Plane.XY.offset(12.75), mode=Mode.PRIVATE) as cortar_extruir30_sk2:
        with Locations((-29, 15)):
            Circle(CROQUIS27_R)
    cortar_extruir30_tool2 = extrude(cortar_extruir30_sk2.sketch, amount=-CORTAR_EXTRUIR30_REACH, mode=Mode.PRIVATE) & body_2_1.part
    add(cortar_extruir30_tool1.solids().sort_by_distance((-40.544875, 15, 12.75))[0], mode=Mode.SUBTRACT)
    add(cortar_extruir30_tool2.solids().sort_by_distance((-29, 15, 12.75))[0], mode=Mode.SUBTRACT)

    # Croquis28 → Cortar-Extruir31 (cut, up to next)
    with BuildSketch(Plane.XY.offset(12.75).offset(CORTAR_EXTRUIR31_START), mode=Mode.PRIVATE) as cortar_extruir31_sk1:
        Polygon((-38.957161657, 12.25), (-37.369448416, 15), (-38.957161657, 17.75), (-42.132588137, 17.75), (-43.720301378, 15), (-42.132588137, 12.25), align=None)
    cortar_extruir31_tool1 = extrude(cortar_extruir31_sk1.sketch, amount=-CORTAR_EXTRUIR31_REACH, mode=Mode.PRIVATE) & body_2_1.part
    # Croquis28 → Cortar-Extruir31 (cut, up to next)
    with BuildSketch(Plane.XY.offset(12.75).offset(CORTAR_EXTRUIR31_START), mode=Mode.PRIVATE) as cortar_extruir31_sk2:
        Polygon((-27.41228676, 12.25), (-25.824573519, 15), (-27.41228676, 17.75), (-30.58771324, 17.75), (-32.175426481, 15), (-30.58771324, 12.25), align=None)
    cortar_extruir31_tool2 = extrude(cortar_extruir31_sk2.sketch, amount=-CORTAR_EXTRUIR31_REACH, mode=Mode.PRIVATE) & body_2_1.part
    add(cortar_extruir31_tool1.solids().sort_by_distance((-40.544875, 15, 9.75))[0], mode=Mode.SUBTRACT)
    add(cortar_extruir31_tool2.solids().sort_by_distance((-29, 15, 9.75))[0], mode=Mode.SUBTRACT)

    # Croquis29 → Cortar-Extruir32 (cut, up to next)
    with BuildSketch(Plane(origin=(-18.612848159, 0, -21.715982563), x_dir=(-0.7592713073348843, 0, 0.6507742172658468), z_dir=(-0.6507742172658468, 0, -0.7592713073348843)), mode=Mode.PRIVATE) as cortar_extruir32_sk1:
        with Locations((33.812368097, 15)):
            Circle(CROQUIS29_R)
    cortar_extruir32_tool1 = extrude(cortar_extruir32_sk1.sketch, amount=-CORTAR_EXTRUIR32_REACH, mode=Mode.PRIVATE) & body_2_1.part
    add(cortar_extruir32_tool1.solids().sort_by_distance((-44.285609, 15, 0.288235))[0], mode=Mode.SUBTRACT)

    # Croquis31 → Cortar-Extruir33 (cut, up to next)
    with BuildSketch(Plane(origin=(-18.612848159, 0, -21.715982563), x_dir=(-0.7592713073348843, 0, 0.6507742172658468), z_dir=(-0.6507742172658468, 0, -0.7592713073348843)).offset(CORTAR_EXTRUIR33_START), mode=Mode.PRIVATE) as cortar_extruir33_sk1:
        Polygon((36.562368097, 16.58771324), (33.812368097, 18.175426481), (31.062368097, 16.58771324), (31.062368097, 13.41228676), (33.812368097, 11.824573519), (36.562368097, 13.41228676), align=None)
    cortar_extruir33_tool1 = extrude(cortar_extruir33_sk1.sketch, amount=-CORTAR_EXTRUIR33_REACH, mode=Mode.PRIVATE) & body_2_1.part
    add(cortar_extruir33_tool1.solids().sort_by_distance((-42.658674, 15, 2.186413))[0], mode=Mode.SUBTRACT)

    # Croquis35 → Cortar-Extruir34 (cut, two sides)
    with BuildSketch(Plane(origin=(0, 20, 0), x_dir=(1, 0, 0), z_dir=(0, 1, 0))) as cortar_extruir34_sk:
        with Locations((17.04227466, -3.413432096)):
            Rectangle(CROQUIS35_W, CROQUIS35_H)
    extrude(amount=CORTAR_EXTRUIR34_DEPTH, mode=Mode.SUBTRACT)
    extrude(cortar_extruir34_sk.sketch, amount=-CORTAR_EXTRUIR34_DEPTH_BACK, mode=Mode.SUBTRACT)

    # Croquis36 → Cortar-Extruir35 (cut)
    with BuildSketch(Plane(origin=(20, 0, 0), x_dir=(0, 0, -1), z_dir=(1, 0, 0)).offset(CORTAR_EXTRUIR35_START)):
        Polygon((7.5, 16.58771324), (4.75, 18.175426481), (2, 16.58771324), (2, 13.41228676), (4.75, 11.824573519), (7.5, 13.41228676), align=None)
    extrude(amount=-CORTAR_EXTRUIR35_DEPTH, mode=Mode.SUBTRACT)

    # Croquis37 → Saliente-Extruir8 (add)
    with BuildSketch(Plane.XZ.offset(-10)):
        Polygon((-39.160527763, -4.104491148), (-20.614919368, -20), (-15, -20), (-19.558128305, -15.637570403), (-33.014002756, -4.104491148), align=None)
    extrude(amount=-SALIENTE_EXTRUIR8_DEPTH)

    # Croquis38 → Saliente-Extruir9 (add)
    with BuildSketch(Plane.XZ.offset(-10)):
        Polygon((-58.825, 12.75), (-38.825, 12.75), (-38.825, 9.75), (-55.324839942, 9.75), align=None)
    extrude(amount=SALIENTE_EXTRUIR9_DEPTH)

    # Croquis39 → Saliente-Extruir10 (add)
    with BuildSketch(Plane.XZ.offset(-10)):
        Polygon((-38.825, 9.75), (-38.825, 7.75), (-38.825, 5.75), (-50.657959865, 5.75), (-52.991399903, 7.75), (-55.324839942, 9.75), align=None)
    extrude(amount=SALIENTE_EXTRUIR10_DEPTH)


solid = body_2_1.part
